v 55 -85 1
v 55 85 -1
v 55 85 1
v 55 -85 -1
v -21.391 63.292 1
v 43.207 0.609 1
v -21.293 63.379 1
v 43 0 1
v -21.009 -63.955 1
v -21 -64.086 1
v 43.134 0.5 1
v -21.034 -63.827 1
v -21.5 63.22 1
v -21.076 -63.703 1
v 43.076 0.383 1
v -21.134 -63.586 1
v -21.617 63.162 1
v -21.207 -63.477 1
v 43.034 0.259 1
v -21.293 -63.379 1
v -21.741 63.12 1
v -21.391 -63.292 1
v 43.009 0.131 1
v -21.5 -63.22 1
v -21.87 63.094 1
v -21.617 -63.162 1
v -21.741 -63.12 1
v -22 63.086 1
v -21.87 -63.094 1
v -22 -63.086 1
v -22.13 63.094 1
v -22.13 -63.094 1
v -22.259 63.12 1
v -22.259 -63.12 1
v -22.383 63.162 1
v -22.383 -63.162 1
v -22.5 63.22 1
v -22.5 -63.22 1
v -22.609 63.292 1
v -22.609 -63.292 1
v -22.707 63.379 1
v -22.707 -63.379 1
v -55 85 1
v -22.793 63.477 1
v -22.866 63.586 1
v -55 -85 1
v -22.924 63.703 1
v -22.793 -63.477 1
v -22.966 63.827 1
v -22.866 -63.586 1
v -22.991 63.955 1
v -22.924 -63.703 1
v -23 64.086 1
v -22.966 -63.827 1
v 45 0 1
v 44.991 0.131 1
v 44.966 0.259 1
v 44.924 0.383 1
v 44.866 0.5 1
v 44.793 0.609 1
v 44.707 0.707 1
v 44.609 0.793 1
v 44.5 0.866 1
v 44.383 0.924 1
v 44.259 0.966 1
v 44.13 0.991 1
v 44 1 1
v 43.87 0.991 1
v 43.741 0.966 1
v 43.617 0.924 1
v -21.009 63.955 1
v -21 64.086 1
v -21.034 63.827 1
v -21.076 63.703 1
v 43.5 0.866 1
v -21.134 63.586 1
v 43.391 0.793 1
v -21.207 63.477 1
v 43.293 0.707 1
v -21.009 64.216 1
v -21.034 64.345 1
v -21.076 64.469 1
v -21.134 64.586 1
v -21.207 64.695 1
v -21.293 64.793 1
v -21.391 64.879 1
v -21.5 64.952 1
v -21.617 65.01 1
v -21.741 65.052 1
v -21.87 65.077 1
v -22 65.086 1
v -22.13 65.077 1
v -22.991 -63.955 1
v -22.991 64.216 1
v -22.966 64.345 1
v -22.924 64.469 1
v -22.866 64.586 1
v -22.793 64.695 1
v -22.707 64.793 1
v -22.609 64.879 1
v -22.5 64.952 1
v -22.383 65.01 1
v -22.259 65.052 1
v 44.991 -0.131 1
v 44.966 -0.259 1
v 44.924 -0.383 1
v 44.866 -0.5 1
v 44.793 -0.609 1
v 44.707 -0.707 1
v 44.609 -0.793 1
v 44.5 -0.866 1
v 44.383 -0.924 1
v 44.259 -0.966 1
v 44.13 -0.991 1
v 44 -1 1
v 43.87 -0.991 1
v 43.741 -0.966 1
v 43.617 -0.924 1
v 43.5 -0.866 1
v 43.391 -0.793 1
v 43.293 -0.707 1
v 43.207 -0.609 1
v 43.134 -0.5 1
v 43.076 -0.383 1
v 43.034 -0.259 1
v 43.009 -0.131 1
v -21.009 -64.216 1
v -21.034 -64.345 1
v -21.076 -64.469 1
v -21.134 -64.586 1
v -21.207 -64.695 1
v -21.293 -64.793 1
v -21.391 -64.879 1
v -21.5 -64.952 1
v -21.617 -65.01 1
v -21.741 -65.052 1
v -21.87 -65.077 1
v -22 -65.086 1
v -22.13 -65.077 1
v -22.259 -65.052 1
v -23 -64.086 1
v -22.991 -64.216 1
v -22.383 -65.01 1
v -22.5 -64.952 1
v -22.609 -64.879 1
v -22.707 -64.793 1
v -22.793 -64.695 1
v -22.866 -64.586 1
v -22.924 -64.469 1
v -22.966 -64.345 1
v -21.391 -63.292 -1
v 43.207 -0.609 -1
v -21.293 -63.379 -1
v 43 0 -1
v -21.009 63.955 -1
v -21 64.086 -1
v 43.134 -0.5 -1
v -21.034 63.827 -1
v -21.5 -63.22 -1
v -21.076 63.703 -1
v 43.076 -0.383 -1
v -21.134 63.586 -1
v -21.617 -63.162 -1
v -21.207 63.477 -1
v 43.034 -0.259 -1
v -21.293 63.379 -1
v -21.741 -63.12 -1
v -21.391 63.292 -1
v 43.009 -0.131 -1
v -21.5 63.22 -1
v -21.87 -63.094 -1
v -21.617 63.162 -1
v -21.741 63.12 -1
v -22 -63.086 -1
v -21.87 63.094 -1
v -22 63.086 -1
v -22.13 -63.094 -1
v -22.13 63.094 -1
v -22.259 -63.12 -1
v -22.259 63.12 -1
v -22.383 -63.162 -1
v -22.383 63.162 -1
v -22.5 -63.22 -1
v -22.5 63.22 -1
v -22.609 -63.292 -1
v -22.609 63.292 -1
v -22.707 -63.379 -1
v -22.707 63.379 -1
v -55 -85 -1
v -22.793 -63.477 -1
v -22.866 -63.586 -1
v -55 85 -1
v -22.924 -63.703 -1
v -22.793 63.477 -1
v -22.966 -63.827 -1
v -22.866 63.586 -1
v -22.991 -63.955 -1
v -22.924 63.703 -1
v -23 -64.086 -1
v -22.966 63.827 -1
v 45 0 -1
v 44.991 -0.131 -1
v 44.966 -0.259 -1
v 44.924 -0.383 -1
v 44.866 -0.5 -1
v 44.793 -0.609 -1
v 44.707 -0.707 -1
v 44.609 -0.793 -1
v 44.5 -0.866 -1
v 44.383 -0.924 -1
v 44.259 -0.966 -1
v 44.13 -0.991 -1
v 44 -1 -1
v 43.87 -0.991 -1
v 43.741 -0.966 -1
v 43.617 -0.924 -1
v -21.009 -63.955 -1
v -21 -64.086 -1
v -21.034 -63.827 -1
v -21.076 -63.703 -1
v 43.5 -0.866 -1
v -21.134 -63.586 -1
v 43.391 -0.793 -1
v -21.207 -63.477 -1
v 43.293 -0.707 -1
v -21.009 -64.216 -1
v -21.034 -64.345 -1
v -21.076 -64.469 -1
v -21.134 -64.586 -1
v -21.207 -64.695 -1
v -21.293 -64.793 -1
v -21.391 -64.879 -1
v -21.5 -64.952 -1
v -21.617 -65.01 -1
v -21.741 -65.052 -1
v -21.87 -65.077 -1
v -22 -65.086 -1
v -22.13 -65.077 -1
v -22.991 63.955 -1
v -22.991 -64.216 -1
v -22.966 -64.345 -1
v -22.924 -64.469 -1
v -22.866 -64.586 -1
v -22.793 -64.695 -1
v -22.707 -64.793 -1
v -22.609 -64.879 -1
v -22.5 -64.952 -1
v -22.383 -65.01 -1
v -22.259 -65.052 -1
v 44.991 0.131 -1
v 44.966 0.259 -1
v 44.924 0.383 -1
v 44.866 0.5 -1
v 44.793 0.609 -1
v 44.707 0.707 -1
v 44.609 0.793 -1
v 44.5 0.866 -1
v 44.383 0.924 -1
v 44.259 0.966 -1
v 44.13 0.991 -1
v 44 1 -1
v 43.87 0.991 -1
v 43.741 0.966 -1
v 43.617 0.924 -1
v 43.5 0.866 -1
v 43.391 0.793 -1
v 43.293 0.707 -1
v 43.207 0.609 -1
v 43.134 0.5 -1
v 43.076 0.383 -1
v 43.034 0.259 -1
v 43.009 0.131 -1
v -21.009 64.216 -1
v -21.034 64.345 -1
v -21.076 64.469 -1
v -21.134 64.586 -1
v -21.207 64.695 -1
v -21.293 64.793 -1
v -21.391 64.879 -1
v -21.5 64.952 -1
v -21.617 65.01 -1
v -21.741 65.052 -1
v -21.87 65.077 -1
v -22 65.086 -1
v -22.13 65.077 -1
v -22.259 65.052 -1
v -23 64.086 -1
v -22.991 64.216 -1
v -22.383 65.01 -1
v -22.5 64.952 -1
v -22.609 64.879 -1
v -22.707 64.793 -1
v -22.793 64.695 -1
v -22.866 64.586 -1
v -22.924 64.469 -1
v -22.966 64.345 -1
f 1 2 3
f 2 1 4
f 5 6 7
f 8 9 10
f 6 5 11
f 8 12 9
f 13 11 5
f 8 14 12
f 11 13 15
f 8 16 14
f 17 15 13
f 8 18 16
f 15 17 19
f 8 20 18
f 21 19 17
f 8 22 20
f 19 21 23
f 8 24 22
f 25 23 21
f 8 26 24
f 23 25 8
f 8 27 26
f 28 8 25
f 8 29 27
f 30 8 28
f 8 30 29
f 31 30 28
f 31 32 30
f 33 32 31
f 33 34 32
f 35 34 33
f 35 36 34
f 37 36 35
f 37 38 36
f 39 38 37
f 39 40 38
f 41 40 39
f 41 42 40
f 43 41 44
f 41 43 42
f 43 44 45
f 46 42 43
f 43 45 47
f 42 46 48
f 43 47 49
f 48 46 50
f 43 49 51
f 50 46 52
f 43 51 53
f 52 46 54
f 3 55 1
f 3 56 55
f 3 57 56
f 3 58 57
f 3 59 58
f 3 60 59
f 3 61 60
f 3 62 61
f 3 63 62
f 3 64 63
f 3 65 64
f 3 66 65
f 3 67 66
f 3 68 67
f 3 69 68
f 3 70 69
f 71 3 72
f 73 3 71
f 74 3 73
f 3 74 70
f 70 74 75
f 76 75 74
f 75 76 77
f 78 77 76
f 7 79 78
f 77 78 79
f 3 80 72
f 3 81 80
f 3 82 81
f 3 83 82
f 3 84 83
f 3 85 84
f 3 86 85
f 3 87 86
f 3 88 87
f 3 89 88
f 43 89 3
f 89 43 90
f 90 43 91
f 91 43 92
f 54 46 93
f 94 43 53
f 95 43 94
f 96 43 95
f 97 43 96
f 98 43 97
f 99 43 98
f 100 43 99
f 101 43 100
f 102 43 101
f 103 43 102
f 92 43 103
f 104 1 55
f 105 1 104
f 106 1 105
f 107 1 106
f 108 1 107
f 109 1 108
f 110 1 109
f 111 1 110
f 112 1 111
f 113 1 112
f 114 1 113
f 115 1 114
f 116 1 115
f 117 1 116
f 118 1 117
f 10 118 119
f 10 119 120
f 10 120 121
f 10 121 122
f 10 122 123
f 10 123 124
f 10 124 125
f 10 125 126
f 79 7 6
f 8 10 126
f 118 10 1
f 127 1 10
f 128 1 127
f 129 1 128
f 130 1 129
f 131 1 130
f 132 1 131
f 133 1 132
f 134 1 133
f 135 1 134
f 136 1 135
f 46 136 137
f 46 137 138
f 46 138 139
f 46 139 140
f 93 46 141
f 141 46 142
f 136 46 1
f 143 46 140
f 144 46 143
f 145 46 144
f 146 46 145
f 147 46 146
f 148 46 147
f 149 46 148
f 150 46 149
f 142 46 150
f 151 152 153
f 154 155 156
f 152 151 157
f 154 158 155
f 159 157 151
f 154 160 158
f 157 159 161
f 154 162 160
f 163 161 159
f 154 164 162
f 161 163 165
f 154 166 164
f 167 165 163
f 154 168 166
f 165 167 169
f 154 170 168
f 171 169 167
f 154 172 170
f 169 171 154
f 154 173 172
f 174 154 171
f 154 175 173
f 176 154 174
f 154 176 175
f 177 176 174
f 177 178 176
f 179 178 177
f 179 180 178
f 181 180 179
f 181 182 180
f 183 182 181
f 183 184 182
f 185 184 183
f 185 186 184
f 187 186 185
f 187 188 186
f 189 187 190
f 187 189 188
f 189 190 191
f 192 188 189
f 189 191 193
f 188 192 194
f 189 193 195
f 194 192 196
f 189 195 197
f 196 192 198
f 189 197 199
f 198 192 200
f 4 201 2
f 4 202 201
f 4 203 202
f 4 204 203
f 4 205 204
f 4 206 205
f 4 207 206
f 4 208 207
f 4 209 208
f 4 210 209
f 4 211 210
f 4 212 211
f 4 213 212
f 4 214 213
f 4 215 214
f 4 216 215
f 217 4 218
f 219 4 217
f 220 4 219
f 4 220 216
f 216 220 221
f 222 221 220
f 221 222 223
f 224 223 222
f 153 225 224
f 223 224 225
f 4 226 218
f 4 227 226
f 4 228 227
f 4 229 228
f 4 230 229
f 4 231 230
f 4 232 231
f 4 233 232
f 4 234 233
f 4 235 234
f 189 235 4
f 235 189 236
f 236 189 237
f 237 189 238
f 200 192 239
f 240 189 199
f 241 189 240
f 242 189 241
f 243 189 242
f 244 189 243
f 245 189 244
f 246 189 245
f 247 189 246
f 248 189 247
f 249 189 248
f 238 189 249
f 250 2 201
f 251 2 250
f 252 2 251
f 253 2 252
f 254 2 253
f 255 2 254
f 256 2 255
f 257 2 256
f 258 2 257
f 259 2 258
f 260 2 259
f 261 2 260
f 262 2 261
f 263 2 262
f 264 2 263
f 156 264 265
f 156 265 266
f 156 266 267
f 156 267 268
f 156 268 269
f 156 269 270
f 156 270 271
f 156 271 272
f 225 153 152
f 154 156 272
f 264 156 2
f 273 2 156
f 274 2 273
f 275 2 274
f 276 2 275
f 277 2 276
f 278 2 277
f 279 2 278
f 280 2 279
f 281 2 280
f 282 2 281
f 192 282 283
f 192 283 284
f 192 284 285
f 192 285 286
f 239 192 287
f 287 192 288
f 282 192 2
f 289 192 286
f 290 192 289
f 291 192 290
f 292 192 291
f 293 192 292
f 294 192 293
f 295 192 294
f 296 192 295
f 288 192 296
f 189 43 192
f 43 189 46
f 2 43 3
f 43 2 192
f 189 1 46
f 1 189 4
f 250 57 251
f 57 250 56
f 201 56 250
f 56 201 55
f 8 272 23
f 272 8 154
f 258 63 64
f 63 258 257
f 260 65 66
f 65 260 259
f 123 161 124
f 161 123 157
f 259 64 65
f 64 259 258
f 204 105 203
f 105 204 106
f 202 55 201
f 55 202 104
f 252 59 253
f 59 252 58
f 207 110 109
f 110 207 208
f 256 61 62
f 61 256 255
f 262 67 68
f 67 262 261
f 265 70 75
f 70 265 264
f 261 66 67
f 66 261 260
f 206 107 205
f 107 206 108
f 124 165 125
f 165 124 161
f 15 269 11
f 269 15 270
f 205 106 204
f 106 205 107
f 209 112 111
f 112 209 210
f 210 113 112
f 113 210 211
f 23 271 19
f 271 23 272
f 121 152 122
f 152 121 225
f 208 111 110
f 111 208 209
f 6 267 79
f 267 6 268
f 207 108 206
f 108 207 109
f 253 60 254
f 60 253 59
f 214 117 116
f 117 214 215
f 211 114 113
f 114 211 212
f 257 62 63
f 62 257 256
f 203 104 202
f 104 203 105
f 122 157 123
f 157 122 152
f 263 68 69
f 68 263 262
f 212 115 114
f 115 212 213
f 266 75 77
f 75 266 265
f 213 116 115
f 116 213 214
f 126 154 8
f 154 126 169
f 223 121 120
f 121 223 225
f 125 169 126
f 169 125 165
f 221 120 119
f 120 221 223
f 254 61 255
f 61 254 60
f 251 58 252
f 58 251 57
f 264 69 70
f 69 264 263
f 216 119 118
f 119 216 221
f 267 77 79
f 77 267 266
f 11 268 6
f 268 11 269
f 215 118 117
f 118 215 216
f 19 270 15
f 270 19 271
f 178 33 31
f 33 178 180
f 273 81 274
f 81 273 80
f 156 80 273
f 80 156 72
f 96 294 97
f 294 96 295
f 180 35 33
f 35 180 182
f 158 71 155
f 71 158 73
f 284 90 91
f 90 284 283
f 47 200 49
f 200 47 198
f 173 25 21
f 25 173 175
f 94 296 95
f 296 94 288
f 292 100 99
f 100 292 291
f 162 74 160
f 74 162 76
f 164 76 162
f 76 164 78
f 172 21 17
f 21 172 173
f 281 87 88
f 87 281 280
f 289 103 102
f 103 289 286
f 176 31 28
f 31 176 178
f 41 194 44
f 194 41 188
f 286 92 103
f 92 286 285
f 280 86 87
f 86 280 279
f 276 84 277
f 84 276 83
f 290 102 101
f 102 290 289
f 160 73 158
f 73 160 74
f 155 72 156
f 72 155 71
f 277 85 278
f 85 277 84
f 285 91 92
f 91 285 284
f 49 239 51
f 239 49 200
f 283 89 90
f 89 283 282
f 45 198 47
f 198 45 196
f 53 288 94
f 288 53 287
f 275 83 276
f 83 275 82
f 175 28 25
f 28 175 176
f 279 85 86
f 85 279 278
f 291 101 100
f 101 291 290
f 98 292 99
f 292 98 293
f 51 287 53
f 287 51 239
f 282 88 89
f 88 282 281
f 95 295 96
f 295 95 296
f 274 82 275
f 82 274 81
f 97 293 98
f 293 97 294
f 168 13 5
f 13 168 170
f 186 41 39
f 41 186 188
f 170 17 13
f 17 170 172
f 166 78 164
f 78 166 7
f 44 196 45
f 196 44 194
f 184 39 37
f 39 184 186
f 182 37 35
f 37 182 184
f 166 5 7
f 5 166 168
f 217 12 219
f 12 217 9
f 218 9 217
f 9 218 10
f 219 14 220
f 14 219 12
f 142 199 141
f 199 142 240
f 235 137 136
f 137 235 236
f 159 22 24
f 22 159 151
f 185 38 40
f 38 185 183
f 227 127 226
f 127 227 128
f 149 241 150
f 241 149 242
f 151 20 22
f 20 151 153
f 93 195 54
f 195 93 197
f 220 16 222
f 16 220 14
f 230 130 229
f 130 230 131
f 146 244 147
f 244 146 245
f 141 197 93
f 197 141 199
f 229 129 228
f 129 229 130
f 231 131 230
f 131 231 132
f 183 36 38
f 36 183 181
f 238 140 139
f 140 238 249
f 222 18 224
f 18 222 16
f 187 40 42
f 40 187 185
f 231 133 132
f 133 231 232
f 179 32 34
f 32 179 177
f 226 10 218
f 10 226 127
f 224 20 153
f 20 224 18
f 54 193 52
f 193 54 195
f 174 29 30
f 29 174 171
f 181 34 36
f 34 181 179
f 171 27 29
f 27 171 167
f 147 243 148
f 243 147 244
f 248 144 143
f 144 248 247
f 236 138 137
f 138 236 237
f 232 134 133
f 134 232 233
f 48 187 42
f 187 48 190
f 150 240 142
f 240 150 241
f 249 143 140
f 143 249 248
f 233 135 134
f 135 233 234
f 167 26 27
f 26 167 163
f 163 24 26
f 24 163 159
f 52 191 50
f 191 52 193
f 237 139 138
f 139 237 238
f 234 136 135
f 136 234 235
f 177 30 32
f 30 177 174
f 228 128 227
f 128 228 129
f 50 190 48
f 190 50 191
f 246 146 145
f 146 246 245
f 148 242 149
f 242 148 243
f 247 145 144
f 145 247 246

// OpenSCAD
// ========================================
// a 110 x 170 x 2 mm plate with three 2 mm holes
// NeuroCAD canonical IR; dimensions are millimetres
// ========================================
$fn = 48;

difference() {
  cube(size=[110, 170, 2], center=true);
  translate([44, 0, 0]) {
    cylinder(r=1, h=4, center=true);
  }
  translate([-22, 64.0858798800485, 0]) {
    cylinder(r=1, h=4, center=true);
  }
  translate([-22, -64.0858798800484, 0]) {
    cylinder(r=1, h=4, center=true);
  }
}
